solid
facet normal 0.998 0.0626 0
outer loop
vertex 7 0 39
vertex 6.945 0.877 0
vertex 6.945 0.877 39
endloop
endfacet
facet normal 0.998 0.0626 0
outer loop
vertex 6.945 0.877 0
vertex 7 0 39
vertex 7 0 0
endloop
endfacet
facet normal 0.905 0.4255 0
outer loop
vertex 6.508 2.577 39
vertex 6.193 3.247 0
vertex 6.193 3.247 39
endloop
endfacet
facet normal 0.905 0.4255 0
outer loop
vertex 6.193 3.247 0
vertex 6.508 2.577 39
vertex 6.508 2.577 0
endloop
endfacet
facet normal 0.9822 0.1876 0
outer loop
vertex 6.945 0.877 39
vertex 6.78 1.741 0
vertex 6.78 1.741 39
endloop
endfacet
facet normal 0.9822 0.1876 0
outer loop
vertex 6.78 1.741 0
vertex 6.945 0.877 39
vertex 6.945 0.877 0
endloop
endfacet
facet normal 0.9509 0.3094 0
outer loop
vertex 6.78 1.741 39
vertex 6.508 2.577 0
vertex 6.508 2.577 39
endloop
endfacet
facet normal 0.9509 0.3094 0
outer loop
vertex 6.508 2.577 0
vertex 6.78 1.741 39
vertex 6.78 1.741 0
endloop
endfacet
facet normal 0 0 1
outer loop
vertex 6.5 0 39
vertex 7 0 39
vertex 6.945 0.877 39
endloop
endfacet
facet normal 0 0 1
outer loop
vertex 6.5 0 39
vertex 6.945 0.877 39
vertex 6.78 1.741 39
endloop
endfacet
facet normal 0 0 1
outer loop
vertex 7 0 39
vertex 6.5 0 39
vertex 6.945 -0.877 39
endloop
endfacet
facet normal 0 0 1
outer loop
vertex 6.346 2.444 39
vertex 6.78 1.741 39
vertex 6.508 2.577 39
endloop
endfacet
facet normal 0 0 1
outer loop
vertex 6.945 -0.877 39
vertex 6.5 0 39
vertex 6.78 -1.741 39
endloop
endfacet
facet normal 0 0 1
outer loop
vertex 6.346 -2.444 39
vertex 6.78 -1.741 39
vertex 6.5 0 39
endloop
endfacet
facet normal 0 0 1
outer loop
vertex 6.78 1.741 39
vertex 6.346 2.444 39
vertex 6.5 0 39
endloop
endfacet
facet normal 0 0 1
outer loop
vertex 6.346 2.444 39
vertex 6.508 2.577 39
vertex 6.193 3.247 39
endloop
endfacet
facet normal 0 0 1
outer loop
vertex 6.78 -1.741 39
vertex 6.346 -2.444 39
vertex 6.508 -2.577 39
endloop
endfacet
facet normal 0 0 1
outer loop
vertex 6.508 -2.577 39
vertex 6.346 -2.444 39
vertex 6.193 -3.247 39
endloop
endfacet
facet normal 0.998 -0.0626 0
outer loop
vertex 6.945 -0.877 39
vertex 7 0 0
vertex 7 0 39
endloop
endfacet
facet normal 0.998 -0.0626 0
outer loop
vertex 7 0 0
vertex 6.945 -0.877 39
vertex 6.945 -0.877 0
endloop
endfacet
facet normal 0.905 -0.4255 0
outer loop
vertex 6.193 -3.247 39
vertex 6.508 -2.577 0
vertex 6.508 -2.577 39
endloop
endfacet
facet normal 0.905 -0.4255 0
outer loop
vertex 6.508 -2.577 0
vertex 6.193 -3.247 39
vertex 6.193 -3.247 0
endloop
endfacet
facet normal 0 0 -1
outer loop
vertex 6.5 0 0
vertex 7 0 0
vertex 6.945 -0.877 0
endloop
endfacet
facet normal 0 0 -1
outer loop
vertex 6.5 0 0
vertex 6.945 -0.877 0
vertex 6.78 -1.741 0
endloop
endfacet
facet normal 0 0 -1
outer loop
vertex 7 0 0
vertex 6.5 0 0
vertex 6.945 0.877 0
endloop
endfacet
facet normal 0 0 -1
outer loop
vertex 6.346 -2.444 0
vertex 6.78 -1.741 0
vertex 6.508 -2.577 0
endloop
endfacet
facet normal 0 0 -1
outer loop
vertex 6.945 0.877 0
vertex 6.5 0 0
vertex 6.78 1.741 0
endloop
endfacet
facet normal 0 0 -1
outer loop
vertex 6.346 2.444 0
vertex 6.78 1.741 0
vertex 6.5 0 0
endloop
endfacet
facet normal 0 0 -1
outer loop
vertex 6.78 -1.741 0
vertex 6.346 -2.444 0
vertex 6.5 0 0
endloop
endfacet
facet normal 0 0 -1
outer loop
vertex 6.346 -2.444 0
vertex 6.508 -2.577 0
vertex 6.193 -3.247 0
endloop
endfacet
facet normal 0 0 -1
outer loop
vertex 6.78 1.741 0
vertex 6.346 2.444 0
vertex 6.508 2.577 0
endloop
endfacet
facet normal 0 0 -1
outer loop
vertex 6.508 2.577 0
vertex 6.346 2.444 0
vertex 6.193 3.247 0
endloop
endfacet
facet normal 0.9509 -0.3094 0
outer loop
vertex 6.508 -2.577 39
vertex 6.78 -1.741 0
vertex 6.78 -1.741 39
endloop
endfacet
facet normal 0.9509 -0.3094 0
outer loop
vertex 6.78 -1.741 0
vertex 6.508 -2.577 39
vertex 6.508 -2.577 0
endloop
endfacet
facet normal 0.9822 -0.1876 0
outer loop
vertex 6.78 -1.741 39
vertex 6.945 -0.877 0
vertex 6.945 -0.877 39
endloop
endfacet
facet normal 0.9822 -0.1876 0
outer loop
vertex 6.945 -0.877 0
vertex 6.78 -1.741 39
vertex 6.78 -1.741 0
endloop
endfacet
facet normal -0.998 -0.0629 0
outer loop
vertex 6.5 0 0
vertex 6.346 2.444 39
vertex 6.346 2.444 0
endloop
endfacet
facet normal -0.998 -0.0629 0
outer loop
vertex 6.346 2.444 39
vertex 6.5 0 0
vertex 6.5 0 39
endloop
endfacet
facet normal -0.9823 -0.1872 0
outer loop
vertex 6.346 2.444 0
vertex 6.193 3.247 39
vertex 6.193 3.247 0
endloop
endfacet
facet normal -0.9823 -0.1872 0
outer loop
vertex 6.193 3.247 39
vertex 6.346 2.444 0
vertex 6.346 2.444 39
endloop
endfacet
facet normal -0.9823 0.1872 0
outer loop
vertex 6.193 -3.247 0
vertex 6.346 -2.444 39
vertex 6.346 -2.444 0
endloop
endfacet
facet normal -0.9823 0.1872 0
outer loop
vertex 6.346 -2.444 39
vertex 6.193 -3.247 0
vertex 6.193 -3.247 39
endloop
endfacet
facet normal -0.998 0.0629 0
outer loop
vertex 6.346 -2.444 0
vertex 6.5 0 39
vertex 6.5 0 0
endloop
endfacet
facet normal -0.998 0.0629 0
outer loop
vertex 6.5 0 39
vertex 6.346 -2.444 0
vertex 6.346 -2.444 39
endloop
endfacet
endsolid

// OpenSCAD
$fn = 50;


difference() {
	union() {
		cylinder(h = 39, r = 7.0000000000);
		translate(v = [-16.0000000000, 0, 0]) {
			cylinder(h = 39, r = 7.0000000000);
		}
	}
	union() {
		cylinder(h = 39, r = 3.2500000000);
		cylinder(h = 39, r = 1.8000000000);
		cylinder(h = 39, r = 1.8000000000);
		cylinder(h = 39, r = 1.8000000000);
		translate(v = [-20.5000000000, 0, 0]) {
			hull() {
				translate(v = [-3.7500000000, 0.0000000000, 0]) {
					cylinder(h = 39, r = 10.5000000000);
				}
				translate(v = [3.7500000000, 0.0000000000, 0]) {
					cylinder(h = 39, r = 10.5000000000);
				}
				translate(v = [-3.7500000000, -0.0000000000, 0]) {
					cylinder(h = 39, r = 10.5000000000);
				}
				translate(v = [3.7500000000, -0.0000000000, 0]) {
					cylinder(h = 39, r = 10.5000000000);
				}
			}
		}
		translate(v = [-13.0000000000, 0, 0.0000000000]) {
			cylinder(h = 39, r = 19.5000000000);
		}
	}
}
